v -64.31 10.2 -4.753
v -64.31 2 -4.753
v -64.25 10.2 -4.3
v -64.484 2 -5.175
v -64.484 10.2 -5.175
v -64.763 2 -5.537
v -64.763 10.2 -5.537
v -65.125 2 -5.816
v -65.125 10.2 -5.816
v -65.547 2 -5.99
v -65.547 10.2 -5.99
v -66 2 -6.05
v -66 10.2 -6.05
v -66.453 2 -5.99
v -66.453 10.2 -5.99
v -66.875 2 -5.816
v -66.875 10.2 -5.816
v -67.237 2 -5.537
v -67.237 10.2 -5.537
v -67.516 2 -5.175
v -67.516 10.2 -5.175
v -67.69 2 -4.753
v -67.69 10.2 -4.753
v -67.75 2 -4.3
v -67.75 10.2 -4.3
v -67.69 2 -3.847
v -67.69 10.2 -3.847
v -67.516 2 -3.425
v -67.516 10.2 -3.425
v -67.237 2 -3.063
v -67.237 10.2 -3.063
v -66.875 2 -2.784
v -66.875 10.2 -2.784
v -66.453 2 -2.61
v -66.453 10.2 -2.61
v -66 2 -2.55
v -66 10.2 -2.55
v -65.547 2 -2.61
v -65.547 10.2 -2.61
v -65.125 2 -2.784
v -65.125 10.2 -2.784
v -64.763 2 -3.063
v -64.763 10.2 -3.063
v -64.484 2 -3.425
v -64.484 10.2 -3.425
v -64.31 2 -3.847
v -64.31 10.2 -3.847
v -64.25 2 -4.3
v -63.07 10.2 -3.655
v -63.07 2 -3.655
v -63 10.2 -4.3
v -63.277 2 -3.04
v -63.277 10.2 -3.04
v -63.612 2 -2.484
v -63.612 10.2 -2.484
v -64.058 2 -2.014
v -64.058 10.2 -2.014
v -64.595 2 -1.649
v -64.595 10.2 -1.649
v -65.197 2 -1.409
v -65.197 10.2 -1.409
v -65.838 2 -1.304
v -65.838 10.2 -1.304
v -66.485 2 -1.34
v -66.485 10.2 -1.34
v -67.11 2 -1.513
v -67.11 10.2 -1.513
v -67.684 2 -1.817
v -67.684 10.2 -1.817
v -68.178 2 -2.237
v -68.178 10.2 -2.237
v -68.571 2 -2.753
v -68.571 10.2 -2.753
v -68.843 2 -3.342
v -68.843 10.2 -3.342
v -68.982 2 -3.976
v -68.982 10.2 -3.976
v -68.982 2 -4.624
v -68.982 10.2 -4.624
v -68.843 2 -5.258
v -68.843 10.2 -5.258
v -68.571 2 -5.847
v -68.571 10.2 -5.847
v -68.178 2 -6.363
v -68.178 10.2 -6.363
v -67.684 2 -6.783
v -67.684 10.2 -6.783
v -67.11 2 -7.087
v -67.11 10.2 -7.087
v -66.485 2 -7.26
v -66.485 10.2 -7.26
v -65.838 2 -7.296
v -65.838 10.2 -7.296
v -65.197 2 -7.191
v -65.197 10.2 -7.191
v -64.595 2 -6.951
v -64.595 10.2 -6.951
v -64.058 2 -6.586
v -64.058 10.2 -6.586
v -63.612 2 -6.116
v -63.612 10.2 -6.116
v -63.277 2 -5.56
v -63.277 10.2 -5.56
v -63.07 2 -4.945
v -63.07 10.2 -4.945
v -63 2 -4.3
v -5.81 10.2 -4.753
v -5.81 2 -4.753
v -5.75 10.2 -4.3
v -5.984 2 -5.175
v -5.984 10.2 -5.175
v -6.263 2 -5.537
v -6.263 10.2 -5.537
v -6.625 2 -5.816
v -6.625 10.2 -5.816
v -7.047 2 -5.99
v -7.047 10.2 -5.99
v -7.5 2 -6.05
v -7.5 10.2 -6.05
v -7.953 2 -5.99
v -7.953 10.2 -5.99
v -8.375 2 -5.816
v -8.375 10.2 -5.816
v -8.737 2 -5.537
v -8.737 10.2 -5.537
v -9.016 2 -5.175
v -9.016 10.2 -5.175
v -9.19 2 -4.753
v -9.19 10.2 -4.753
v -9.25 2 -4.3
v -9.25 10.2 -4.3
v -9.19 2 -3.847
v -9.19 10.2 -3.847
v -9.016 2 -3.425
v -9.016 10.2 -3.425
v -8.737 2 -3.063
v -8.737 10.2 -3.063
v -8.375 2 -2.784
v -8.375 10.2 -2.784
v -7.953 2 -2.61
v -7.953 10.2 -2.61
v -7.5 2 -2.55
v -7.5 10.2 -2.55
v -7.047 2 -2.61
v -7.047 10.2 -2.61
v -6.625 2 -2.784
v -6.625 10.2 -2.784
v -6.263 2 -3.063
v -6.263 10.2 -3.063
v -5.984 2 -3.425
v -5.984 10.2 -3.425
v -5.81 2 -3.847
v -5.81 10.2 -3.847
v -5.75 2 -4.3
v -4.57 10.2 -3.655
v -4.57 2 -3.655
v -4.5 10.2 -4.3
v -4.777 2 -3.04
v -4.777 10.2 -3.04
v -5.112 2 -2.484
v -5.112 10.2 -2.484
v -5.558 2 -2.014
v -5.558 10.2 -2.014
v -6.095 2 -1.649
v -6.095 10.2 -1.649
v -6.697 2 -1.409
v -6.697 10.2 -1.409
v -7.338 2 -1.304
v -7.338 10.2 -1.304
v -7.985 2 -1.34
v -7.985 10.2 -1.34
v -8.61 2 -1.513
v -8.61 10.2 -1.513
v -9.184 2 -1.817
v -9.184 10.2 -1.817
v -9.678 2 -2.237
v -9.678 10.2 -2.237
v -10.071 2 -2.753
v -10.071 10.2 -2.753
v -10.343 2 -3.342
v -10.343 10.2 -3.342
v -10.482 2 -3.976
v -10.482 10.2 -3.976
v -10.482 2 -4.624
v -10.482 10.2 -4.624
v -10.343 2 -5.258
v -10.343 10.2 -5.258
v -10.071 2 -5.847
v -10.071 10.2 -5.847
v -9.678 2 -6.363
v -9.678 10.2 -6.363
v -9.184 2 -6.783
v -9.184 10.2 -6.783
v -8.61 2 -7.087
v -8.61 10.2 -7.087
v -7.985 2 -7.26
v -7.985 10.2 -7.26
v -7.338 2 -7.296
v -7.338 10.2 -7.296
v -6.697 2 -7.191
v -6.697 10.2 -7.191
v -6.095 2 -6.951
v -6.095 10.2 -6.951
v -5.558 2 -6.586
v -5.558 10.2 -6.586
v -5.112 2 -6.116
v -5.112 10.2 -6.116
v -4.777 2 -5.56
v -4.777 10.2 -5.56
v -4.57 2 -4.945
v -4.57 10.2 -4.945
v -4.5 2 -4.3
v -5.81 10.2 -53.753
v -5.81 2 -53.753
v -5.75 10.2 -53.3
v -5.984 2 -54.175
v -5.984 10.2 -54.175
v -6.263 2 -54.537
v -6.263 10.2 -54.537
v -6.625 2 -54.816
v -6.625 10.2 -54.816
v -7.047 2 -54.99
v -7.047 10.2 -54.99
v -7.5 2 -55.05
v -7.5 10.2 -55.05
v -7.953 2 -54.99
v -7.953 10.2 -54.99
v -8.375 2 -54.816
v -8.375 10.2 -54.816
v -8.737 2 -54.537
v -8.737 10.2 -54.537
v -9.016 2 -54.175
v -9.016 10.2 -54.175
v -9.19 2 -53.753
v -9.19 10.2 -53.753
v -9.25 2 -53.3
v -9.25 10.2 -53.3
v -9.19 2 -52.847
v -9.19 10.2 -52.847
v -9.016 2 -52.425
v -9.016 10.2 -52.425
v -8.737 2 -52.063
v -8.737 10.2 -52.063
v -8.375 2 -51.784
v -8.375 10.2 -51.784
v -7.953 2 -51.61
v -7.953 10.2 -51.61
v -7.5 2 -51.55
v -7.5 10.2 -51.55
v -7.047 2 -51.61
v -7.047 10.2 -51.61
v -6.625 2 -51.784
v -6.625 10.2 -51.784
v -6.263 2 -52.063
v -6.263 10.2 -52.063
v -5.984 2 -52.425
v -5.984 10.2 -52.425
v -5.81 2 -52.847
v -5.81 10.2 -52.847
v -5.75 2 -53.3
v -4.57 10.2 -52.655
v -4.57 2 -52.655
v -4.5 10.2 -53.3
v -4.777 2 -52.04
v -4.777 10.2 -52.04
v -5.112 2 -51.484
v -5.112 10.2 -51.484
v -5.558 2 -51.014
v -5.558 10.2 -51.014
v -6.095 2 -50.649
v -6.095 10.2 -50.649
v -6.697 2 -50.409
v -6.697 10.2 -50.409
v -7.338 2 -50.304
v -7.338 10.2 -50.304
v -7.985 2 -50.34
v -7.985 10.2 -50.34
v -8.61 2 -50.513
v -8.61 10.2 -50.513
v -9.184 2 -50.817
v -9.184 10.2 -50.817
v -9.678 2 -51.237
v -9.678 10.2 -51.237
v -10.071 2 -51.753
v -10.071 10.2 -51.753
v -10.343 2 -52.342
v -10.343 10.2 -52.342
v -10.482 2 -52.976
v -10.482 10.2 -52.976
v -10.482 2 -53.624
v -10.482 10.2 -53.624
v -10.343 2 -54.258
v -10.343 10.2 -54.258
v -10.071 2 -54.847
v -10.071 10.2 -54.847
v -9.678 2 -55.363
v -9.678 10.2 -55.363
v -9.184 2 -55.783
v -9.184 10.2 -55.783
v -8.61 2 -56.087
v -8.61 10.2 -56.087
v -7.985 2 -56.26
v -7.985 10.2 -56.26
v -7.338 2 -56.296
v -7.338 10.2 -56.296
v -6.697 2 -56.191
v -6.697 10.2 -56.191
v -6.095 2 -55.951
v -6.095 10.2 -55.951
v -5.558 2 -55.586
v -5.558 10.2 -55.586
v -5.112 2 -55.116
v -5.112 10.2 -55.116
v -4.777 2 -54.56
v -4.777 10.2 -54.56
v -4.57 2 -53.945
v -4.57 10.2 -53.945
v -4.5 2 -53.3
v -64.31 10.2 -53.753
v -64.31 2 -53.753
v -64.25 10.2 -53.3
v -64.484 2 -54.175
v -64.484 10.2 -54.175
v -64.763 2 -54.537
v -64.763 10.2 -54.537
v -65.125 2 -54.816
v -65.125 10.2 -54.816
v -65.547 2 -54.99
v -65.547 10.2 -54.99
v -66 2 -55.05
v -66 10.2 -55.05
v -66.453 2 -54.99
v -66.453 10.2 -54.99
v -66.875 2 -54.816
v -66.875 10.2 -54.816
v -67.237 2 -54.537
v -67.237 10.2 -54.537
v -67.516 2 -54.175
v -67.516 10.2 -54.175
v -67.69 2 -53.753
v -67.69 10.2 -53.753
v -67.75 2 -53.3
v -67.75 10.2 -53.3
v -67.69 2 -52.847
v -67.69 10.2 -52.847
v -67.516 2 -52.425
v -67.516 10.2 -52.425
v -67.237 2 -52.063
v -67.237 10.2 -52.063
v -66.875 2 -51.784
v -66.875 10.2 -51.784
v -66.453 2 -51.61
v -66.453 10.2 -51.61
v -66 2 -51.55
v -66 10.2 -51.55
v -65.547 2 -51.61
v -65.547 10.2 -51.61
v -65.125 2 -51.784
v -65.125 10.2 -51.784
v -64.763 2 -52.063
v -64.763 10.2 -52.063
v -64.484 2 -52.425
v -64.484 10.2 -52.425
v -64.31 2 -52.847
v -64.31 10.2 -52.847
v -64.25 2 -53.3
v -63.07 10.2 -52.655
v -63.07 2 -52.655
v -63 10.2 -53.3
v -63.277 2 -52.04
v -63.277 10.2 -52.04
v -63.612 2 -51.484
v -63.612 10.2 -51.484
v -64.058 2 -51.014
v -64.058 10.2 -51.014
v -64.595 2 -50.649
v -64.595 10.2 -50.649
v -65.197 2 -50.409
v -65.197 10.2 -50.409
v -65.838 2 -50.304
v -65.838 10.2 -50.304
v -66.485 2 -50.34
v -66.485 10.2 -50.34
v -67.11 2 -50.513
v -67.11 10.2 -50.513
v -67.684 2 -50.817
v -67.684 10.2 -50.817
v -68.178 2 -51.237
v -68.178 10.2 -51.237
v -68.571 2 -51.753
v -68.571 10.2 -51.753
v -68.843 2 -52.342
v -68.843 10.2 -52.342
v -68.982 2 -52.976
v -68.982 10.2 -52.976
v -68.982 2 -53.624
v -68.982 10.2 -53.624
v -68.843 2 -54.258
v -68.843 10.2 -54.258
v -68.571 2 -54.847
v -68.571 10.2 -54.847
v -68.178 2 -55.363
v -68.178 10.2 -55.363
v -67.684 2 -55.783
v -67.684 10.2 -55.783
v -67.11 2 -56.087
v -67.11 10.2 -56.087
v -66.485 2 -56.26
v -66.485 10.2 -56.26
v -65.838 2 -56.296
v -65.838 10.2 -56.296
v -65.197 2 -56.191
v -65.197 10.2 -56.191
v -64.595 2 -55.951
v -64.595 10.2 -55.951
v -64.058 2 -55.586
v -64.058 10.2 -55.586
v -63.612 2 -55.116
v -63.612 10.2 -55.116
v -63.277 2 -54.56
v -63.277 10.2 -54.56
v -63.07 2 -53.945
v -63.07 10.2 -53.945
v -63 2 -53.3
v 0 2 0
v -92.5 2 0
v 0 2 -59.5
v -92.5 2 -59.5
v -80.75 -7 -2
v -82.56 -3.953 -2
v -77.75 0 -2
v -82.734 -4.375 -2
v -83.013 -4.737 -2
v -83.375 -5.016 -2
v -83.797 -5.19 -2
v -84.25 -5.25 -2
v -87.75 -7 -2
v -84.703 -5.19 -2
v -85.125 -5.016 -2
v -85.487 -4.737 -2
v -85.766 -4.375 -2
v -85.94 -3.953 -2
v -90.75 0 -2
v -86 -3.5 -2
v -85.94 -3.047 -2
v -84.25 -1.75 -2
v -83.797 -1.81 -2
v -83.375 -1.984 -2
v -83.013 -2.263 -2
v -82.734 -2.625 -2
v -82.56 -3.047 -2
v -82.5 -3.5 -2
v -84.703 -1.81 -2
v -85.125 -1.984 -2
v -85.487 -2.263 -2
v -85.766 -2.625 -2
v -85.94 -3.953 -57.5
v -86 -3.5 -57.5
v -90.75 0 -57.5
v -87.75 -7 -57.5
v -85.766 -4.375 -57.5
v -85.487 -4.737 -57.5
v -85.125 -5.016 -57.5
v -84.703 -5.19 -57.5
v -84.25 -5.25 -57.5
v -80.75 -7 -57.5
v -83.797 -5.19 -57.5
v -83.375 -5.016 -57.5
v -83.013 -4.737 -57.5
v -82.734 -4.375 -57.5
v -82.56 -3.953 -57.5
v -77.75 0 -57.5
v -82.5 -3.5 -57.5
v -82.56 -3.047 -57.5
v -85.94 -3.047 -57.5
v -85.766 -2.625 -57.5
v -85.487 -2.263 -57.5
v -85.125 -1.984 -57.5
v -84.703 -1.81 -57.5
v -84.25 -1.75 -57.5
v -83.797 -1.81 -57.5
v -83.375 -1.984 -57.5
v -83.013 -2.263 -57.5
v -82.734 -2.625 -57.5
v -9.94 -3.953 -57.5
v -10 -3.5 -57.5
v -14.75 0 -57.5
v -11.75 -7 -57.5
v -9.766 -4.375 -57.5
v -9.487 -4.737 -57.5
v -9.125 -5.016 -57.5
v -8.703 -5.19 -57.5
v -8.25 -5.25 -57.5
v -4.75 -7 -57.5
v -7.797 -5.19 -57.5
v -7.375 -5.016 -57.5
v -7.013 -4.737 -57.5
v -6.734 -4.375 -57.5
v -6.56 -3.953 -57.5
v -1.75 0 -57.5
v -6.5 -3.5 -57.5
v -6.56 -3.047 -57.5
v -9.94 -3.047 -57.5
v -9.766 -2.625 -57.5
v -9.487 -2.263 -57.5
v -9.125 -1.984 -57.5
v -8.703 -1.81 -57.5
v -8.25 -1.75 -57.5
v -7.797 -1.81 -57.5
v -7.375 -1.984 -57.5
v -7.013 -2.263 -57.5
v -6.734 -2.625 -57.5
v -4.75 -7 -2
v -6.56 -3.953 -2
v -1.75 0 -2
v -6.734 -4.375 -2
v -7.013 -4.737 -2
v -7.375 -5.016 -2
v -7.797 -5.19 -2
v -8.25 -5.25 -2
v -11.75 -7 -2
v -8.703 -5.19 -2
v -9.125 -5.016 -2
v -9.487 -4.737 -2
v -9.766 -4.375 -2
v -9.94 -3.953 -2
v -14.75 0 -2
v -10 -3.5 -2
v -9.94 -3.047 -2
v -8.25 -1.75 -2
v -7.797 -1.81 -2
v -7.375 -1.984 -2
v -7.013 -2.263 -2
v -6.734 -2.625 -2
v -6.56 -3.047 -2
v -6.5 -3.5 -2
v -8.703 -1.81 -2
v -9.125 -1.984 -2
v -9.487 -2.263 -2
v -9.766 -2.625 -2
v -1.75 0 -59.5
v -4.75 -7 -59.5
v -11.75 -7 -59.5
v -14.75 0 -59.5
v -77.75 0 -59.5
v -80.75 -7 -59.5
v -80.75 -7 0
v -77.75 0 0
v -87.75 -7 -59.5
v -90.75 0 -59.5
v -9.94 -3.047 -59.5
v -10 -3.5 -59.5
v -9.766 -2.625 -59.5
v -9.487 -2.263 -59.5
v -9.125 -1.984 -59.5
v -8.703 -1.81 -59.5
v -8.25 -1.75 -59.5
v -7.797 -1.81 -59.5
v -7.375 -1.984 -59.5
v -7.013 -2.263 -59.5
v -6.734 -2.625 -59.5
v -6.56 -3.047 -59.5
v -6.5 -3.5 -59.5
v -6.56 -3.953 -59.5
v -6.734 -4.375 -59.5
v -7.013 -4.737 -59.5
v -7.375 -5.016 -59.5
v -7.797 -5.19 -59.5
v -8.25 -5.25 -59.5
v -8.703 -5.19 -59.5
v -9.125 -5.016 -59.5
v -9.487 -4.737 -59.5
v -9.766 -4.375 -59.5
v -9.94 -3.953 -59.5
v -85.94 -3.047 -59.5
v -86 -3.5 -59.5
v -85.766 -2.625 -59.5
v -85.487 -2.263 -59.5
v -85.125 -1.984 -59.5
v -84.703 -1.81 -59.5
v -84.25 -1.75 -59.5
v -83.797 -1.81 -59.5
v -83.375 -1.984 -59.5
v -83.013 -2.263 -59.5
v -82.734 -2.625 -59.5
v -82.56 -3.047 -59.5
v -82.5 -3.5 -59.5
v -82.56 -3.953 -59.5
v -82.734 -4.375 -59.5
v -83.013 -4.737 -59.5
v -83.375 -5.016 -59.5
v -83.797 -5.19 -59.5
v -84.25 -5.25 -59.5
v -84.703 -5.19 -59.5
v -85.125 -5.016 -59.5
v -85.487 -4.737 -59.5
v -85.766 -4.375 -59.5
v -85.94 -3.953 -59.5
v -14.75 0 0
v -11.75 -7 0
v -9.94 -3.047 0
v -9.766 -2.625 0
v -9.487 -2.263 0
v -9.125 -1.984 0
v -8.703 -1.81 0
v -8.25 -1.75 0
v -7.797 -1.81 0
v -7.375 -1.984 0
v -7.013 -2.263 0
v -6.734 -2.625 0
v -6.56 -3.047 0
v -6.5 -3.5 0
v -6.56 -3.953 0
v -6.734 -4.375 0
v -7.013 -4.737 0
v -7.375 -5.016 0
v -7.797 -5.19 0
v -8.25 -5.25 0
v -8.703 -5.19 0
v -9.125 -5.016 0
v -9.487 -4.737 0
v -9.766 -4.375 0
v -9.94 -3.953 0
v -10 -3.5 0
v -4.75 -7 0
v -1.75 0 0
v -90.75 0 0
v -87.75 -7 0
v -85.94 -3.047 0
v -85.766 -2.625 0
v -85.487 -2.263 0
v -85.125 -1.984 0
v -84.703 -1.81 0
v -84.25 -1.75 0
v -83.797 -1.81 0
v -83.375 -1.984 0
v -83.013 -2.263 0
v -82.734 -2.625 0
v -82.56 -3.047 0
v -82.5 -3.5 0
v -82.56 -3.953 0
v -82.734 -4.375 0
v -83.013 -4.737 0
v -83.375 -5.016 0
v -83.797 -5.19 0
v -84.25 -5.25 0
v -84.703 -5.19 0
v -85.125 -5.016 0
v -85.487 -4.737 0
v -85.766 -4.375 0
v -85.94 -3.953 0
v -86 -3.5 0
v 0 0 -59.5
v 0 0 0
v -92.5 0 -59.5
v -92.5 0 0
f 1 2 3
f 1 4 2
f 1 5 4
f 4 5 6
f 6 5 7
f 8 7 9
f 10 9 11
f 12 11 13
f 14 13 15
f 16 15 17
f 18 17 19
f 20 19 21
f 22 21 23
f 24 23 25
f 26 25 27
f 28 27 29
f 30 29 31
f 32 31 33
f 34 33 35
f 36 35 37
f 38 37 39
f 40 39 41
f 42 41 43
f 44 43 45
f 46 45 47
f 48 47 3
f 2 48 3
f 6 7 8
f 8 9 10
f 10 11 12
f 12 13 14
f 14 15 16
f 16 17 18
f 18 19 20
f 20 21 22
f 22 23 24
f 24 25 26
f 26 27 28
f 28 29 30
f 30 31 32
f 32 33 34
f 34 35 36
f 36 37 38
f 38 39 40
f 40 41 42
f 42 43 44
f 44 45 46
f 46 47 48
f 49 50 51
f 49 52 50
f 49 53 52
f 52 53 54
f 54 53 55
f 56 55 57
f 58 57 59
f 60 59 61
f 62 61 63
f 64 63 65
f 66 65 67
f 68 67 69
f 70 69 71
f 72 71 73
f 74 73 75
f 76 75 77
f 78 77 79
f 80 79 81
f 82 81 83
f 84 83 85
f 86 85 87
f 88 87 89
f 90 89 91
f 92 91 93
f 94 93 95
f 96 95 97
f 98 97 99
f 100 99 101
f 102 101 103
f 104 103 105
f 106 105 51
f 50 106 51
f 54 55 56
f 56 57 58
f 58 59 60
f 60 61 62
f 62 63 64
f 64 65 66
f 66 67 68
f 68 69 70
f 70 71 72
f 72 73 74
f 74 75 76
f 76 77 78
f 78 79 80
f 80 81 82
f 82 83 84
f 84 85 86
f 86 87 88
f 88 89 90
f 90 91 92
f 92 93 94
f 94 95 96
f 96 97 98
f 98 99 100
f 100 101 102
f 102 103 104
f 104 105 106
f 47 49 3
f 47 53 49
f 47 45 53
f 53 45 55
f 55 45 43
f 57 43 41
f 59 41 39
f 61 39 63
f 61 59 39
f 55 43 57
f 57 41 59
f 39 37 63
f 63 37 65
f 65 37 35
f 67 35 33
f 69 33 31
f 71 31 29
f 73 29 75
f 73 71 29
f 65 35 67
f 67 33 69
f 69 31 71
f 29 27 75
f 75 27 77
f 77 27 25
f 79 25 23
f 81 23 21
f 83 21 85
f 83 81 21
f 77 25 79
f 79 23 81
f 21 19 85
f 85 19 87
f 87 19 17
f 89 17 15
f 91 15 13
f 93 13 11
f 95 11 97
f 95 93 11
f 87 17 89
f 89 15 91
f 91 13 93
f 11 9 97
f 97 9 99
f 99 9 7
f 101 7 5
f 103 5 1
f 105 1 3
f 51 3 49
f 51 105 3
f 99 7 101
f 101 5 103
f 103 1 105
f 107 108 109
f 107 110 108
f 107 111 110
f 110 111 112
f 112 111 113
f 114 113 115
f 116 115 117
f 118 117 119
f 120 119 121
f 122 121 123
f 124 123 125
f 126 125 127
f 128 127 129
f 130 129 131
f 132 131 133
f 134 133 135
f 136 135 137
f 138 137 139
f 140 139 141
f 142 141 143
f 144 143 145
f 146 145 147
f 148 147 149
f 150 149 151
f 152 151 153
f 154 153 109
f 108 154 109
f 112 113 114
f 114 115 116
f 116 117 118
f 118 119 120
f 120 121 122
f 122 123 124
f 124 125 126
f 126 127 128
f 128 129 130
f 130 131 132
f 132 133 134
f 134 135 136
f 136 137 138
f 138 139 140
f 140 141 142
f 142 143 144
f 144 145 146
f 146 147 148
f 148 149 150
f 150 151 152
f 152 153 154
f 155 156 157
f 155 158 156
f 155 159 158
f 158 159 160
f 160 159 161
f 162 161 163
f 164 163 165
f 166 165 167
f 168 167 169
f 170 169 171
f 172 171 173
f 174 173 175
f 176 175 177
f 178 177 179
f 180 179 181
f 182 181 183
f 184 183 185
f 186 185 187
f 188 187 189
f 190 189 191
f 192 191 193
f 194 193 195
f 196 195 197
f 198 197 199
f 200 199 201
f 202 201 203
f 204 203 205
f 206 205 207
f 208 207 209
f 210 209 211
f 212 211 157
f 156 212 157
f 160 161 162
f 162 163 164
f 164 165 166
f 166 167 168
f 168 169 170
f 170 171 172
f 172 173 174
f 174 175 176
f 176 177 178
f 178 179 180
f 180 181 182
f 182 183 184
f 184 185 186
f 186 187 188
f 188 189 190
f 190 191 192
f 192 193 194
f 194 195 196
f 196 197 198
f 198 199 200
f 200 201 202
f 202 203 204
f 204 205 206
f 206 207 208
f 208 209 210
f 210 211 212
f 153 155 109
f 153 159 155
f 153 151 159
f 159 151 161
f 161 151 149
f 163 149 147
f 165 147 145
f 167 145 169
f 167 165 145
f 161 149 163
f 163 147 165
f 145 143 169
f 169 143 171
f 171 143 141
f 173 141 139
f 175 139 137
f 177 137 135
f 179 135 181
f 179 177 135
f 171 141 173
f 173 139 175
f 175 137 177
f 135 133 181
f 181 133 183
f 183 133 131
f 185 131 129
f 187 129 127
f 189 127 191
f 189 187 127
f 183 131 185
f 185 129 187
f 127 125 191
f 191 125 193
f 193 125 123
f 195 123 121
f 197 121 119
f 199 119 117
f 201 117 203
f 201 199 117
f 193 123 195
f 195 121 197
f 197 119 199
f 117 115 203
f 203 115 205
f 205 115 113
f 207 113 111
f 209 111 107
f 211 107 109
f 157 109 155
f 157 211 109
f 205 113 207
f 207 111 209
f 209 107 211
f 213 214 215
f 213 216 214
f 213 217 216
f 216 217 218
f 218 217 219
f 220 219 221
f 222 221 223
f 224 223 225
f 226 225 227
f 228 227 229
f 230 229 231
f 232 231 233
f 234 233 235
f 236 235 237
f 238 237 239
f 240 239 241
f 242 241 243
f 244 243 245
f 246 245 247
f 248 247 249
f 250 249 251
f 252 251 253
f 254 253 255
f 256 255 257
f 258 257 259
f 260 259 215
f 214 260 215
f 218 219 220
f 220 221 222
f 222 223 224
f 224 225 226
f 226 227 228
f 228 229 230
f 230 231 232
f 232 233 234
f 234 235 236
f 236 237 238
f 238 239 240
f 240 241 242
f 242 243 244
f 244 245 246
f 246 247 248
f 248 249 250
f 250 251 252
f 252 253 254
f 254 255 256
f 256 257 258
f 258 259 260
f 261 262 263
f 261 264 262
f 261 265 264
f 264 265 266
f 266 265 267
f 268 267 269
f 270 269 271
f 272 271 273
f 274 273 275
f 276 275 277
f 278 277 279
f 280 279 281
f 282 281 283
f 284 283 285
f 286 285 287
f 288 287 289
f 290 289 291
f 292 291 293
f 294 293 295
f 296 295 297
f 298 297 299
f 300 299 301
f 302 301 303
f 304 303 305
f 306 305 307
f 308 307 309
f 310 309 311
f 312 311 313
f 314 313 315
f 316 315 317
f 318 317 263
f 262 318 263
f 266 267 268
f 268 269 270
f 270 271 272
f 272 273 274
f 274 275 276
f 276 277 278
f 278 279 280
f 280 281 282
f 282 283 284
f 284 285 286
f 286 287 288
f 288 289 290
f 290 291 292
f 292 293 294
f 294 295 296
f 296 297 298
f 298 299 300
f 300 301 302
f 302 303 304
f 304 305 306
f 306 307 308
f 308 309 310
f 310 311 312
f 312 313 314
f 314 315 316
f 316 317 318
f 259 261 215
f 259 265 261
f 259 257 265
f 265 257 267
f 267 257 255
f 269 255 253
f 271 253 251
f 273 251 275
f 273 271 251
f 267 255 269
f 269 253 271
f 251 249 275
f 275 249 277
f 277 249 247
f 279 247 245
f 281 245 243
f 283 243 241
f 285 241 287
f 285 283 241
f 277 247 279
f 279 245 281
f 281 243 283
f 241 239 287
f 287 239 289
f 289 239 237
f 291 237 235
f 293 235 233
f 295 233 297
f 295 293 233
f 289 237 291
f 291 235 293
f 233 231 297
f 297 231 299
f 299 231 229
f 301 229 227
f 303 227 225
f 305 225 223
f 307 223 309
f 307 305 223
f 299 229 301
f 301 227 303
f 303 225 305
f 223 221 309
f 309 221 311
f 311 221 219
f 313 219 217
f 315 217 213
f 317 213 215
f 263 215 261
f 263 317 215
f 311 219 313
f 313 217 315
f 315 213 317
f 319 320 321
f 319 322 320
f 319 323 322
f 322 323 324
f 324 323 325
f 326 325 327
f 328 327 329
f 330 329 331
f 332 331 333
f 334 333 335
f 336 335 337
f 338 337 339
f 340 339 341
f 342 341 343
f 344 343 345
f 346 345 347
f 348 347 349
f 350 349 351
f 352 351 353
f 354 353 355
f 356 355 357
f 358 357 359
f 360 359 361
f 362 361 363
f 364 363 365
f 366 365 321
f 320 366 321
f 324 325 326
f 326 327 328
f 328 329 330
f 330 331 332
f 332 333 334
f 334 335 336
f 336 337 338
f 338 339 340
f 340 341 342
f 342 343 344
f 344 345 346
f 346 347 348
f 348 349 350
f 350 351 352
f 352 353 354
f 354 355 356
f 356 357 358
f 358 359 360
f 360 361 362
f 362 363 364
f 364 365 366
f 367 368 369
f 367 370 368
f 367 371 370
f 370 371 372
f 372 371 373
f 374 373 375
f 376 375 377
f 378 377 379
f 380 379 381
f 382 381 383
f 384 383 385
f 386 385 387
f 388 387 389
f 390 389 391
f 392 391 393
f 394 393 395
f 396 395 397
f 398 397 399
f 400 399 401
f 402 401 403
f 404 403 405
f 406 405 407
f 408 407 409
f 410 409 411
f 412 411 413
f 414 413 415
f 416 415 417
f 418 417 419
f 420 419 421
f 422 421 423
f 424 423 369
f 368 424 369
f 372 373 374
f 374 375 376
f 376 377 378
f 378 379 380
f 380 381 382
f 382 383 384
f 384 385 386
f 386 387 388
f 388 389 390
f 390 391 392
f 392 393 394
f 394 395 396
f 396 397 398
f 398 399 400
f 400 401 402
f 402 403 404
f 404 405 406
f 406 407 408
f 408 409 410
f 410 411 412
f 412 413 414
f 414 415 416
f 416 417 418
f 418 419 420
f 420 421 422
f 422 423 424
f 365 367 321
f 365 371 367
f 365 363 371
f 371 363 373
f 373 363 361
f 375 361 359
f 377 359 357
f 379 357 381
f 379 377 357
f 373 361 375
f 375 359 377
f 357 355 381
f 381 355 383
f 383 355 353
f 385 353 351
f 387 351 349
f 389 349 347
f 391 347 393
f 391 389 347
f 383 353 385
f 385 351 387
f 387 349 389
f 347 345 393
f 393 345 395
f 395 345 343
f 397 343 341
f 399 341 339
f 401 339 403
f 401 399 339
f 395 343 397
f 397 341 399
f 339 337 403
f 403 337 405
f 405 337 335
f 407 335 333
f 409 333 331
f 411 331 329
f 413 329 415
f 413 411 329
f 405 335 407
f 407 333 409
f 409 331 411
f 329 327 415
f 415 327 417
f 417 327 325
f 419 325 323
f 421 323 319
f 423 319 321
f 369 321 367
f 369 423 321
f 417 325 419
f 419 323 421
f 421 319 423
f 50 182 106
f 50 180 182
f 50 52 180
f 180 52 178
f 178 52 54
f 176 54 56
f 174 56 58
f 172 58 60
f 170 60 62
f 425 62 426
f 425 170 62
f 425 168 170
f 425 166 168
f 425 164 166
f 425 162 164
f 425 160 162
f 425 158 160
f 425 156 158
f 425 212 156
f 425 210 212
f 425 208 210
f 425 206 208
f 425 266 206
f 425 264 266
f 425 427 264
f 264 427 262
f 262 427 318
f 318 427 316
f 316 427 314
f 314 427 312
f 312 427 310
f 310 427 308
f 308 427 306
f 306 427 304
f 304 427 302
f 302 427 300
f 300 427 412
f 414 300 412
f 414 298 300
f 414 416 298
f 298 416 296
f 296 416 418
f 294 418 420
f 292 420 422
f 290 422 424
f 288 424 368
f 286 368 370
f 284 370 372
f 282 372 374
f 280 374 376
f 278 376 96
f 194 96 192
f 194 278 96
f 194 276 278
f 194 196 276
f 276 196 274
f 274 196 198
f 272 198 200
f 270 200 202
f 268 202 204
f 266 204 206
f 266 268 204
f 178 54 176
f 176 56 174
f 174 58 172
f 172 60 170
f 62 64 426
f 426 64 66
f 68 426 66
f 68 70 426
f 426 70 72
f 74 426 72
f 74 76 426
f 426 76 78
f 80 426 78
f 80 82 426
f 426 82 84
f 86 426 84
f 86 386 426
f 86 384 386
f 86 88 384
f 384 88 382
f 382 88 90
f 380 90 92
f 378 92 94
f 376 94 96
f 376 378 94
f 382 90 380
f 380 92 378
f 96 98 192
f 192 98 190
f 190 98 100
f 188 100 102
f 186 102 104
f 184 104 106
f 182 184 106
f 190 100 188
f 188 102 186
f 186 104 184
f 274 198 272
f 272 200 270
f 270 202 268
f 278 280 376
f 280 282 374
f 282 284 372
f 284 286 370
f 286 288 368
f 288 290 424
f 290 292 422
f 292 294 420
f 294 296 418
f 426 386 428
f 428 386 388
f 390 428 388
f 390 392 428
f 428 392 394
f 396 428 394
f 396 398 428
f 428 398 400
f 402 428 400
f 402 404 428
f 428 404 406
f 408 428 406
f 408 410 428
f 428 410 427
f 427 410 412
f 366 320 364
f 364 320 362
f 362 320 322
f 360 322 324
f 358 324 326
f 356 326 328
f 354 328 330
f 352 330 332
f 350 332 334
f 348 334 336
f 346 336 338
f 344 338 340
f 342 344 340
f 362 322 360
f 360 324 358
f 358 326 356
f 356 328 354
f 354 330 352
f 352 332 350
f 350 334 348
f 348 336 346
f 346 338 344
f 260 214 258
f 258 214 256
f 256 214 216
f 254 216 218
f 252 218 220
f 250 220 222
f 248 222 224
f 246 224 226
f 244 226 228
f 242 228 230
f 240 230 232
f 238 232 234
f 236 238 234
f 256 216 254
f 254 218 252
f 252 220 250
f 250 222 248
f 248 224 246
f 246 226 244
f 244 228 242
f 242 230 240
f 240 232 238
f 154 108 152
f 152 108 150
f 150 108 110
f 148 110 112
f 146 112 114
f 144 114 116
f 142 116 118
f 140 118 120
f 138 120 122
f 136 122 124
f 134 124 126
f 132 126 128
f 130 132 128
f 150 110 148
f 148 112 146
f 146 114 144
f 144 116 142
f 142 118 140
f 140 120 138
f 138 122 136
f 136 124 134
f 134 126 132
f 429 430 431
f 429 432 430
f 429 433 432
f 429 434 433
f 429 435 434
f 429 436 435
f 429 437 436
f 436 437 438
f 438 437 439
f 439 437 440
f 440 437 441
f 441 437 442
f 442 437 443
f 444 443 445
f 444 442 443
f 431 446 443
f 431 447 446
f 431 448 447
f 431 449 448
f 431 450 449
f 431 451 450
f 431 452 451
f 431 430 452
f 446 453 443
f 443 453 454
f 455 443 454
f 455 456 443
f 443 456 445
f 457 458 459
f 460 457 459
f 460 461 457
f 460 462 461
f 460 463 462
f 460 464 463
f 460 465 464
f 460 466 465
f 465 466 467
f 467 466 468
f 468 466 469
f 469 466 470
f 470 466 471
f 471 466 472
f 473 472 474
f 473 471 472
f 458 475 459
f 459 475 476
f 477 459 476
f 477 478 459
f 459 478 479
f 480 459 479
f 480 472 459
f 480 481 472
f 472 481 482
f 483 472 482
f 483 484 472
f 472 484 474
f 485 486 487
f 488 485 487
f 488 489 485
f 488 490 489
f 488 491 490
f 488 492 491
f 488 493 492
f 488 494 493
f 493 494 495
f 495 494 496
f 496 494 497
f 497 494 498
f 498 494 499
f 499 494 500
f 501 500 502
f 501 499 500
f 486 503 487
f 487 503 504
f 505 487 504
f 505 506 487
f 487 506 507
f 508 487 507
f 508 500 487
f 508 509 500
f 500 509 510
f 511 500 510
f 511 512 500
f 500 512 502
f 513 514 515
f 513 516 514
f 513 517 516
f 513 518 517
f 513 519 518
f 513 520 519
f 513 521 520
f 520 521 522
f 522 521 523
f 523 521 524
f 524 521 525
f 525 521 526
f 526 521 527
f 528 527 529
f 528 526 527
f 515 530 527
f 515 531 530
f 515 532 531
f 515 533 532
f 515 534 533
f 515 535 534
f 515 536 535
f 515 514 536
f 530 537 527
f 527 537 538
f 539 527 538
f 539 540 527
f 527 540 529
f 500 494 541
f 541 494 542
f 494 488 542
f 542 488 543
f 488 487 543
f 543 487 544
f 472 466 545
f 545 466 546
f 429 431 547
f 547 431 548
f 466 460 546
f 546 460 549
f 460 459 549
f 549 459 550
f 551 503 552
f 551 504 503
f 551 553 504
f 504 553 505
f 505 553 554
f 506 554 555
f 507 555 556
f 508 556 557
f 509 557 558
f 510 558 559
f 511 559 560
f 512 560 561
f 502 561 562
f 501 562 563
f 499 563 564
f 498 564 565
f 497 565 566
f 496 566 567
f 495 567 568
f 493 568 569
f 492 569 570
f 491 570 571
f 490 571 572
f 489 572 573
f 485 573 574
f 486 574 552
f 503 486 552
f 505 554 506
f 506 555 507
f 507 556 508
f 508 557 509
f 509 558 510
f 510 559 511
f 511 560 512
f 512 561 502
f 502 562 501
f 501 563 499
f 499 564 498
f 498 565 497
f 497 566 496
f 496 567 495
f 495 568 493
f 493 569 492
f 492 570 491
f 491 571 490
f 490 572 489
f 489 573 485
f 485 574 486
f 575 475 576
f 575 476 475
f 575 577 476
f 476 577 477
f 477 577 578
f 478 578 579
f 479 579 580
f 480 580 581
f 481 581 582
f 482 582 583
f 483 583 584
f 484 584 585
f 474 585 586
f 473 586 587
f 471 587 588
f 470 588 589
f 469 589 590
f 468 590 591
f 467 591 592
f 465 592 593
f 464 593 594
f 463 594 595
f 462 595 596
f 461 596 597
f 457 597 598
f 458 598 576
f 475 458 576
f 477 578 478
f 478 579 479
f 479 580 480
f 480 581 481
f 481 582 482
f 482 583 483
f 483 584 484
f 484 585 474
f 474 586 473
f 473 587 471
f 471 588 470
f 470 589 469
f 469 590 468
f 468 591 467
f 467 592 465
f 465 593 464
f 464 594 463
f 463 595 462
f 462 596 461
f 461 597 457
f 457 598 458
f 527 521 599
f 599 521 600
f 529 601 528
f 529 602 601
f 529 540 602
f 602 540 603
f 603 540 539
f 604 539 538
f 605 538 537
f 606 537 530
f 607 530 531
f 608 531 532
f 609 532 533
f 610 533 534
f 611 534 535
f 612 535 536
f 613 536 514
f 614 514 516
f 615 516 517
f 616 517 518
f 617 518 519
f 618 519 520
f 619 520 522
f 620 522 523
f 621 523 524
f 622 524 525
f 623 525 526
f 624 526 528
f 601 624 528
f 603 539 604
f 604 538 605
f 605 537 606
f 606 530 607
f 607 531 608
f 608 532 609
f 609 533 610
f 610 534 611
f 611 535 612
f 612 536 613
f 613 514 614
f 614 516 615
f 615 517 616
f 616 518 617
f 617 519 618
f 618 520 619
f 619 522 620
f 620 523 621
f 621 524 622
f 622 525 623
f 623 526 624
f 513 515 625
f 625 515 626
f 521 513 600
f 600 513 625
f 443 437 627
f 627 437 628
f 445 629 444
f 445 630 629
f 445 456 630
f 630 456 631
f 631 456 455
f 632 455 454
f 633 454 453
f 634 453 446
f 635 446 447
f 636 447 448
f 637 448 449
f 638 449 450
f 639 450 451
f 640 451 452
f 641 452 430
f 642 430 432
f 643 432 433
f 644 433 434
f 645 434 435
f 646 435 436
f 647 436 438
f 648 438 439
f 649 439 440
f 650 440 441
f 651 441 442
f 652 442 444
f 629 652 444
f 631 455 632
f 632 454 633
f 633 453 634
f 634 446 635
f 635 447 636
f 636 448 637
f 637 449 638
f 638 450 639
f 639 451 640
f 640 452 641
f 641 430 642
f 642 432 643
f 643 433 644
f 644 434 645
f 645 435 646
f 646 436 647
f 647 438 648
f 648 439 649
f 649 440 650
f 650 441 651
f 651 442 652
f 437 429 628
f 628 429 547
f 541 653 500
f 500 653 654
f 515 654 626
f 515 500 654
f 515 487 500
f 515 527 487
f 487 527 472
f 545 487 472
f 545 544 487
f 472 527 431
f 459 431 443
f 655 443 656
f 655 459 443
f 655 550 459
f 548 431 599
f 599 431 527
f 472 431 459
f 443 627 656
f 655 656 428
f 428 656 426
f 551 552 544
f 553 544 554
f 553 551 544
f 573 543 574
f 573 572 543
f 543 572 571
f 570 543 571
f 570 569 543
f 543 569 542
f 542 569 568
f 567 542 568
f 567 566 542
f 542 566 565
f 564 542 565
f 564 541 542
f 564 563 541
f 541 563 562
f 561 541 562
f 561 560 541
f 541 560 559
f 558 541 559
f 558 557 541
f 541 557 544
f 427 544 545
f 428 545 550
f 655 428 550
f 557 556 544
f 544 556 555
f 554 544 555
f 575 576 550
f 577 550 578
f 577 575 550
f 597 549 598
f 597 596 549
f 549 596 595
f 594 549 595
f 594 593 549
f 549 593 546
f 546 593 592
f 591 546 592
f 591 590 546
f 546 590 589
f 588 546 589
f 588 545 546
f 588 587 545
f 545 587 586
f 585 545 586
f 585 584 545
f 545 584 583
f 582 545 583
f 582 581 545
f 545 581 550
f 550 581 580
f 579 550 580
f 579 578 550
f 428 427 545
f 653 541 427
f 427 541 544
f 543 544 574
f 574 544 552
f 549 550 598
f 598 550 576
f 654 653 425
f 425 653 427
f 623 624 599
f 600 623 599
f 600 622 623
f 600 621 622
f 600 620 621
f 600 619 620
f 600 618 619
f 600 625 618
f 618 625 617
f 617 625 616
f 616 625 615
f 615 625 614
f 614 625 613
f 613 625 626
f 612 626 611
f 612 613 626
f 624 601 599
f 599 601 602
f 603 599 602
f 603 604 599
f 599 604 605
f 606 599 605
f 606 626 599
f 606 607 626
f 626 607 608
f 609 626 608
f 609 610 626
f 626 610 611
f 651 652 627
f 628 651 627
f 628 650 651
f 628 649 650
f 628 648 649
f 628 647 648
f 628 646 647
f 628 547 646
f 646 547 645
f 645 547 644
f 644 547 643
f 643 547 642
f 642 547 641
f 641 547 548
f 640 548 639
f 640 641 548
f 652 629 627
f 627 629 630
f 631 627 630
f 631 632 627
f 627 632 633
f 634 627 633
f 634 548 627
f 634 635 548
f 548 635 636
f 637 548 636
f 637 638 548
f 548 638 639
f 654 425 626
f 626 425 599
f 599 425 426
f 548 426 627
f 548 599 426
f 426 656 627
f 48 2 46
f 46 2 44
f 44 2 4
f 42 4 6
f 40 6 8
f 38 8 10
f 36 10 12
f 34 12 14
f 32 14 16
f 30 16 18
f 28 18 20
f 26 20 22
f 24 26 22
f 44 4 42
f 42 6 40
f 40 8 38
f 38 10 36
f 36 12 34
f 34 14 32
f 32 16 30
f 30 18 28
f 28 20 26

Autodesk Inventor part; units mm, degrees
ref_plane "YZ Plane" through (0, 0, 0) normal (1, 0, 0) x (0, 1, 0)
ref_plane "XZ Plane" through (0, 0, 0) normal (0, 1, 0) x (-1, 0, 0)
ref_plane "XY Plane" through (0, 0, 0) normal (0, 0, 1) x (1, 0, 0)
sketch "Sketch1" plane through (0, 0, 0) normal (0, 1, 0) x (-1, 0, 0)
  line L0 (0, 0) -> (92.5, 0)
  line L1 (92.5, 0) -> (92.5, -59.5)
  line L2 (92.5, -59.5) -> (0, -59.5)
  line L3 (0, -59.5) -> (0, 0)
  dimension "d0" = 92.5
  dimension "d1" = 59.5
extrude "Extrusion1" add sketch "Sketch1" along normal blind 2
sketch "Sketch2" plane through (0, 0, -59.5) normal (0, 0, -1) x (-1, 0, 0)
  line L0 (0, 0) -> (92.5, 0) projected
  line L1 (46.25, 0) -> (46.25, 2) construction
  line L2 (92.5, 2) -> (0, 2) projected
  line L3 (14.75, 0) -> (1.75, 0)
  line L4 (4.75, -7) -> (11.75, -7)
  line L5 (1.75, 0) -> (4.75, -7)
  line L6 (14.75, 0) -> (11.75, -7)
  circle A0 centre (8.25, -3.5) radius 1.75
  line L7 (87.75, -7) -> (80.75, -7)
  line L8 (90.75, 0) -> (87.75, -7)
  line L9 (77.75, 0) -> (80.75, -7)
  circle A1 centre (84.25, -3.5) radius 1.75
  line L10 (90.75, 0) -> (77.75, 0)
  dimension "d4" = 13
  dimension "d5" = 7
  dimension "d6" = 1.75
  dimension "d7" = 7
  dimension "d8" = 3
  dimension "d9" = 3.5
  dimension "d10" = 6.5
  dimension "d11" = 3.5
extrude "Extrusion2" add sketch "Sketch2" against normal up to surface (59.5 mm away)
sketch "Sketch3" plane through (0, 0, 0) normal (0, -1, 0) x (1, 0, 0)
  line L0 (-92.5, -57.5) -> (0, -57.5)
  line L1 (0, -57.5) -> (0, -2)
  line L2 (0, -2) -> (-92.5, -2)
  line L3 (-92.5, -2) -> (-92.5, -57.5)
  line L4 (-77.75, -59.5) -> (-14.75, -59.5) projected
  line L5 (-92.5, -59.5) -> (-92.5, 0) projected
  line L6 (-14.75, 0) -> (-77.75, 0) projected
  line L7 (0, 0) -> (0, -59.5) projected
  dimension "d14" = 2
  dimension "d16" = 0
  dimension "d17" = 2
  dimension "d18" = 0
extrude "Extrusion3" cut sketch "Sketch3" along normal through all
sketch "Sketch4" plane through (0, 2, 0) normal (0, 1, 0) x (1, 0, 0)
  line L0 (-89, 0.8) -> (-4, 0.8) construction
  line L1 (-4, 0.8) -> (-4, 56.8) construction
  line L2 (-4, 56.8) -> (-89, 56.8) construction
  line L3 (-89, 56.8) -> (-89, 0.8) construction
  line L4 (0, 0) -> (0, 59.5) projected
  line L5 (-92.5, 0) -> (0, 0) projected
  circle A0 centre (-7.5, 4.3) radius 3
  circle A1 centre (-7.5, 53.3) radius 3
  circle A2 centre (-66, 4.3) radius 3
  circle A3 centre (-66, 53.3) radius 3
  circle A4 centre (-66, 4.3) radius 1.75
  circle A5 centre (-66, 53.3) radius 1.75
  circle A6 centre (-7.5, 53.3) radius 1.75
  circle A7 centre (-7.5, 4.3) radius 1.75
  dimension "d21" = 85
  dimension "d22" = 56
  dimension "d23" = 4
  dimension "d24" = 0.8
  dimension "d25" = 6
  dimension "d26" = 6
  dimension "d27" = 6
  dimension "d28" = 6
  dimension "d29" = 3.5
  dimension "d30" = 3.5
  dimension "d31" = 3.5
  dimension "d32" = 3.5
  dimension "d33" = 3.5
  dimension "d34" = 3.5
  dimension "d35" = 58.5
  dimension "d36" = 58.5
  dimension "d37" = 3.5
  dimension "d38" = 3.5
  dimension "d39" = 3.5
  dimension "d40" = 3.5
extrude "Extrusion4" add sketch "Sketch4" along normal blind 8.2
properties part number "Pi Holder"
